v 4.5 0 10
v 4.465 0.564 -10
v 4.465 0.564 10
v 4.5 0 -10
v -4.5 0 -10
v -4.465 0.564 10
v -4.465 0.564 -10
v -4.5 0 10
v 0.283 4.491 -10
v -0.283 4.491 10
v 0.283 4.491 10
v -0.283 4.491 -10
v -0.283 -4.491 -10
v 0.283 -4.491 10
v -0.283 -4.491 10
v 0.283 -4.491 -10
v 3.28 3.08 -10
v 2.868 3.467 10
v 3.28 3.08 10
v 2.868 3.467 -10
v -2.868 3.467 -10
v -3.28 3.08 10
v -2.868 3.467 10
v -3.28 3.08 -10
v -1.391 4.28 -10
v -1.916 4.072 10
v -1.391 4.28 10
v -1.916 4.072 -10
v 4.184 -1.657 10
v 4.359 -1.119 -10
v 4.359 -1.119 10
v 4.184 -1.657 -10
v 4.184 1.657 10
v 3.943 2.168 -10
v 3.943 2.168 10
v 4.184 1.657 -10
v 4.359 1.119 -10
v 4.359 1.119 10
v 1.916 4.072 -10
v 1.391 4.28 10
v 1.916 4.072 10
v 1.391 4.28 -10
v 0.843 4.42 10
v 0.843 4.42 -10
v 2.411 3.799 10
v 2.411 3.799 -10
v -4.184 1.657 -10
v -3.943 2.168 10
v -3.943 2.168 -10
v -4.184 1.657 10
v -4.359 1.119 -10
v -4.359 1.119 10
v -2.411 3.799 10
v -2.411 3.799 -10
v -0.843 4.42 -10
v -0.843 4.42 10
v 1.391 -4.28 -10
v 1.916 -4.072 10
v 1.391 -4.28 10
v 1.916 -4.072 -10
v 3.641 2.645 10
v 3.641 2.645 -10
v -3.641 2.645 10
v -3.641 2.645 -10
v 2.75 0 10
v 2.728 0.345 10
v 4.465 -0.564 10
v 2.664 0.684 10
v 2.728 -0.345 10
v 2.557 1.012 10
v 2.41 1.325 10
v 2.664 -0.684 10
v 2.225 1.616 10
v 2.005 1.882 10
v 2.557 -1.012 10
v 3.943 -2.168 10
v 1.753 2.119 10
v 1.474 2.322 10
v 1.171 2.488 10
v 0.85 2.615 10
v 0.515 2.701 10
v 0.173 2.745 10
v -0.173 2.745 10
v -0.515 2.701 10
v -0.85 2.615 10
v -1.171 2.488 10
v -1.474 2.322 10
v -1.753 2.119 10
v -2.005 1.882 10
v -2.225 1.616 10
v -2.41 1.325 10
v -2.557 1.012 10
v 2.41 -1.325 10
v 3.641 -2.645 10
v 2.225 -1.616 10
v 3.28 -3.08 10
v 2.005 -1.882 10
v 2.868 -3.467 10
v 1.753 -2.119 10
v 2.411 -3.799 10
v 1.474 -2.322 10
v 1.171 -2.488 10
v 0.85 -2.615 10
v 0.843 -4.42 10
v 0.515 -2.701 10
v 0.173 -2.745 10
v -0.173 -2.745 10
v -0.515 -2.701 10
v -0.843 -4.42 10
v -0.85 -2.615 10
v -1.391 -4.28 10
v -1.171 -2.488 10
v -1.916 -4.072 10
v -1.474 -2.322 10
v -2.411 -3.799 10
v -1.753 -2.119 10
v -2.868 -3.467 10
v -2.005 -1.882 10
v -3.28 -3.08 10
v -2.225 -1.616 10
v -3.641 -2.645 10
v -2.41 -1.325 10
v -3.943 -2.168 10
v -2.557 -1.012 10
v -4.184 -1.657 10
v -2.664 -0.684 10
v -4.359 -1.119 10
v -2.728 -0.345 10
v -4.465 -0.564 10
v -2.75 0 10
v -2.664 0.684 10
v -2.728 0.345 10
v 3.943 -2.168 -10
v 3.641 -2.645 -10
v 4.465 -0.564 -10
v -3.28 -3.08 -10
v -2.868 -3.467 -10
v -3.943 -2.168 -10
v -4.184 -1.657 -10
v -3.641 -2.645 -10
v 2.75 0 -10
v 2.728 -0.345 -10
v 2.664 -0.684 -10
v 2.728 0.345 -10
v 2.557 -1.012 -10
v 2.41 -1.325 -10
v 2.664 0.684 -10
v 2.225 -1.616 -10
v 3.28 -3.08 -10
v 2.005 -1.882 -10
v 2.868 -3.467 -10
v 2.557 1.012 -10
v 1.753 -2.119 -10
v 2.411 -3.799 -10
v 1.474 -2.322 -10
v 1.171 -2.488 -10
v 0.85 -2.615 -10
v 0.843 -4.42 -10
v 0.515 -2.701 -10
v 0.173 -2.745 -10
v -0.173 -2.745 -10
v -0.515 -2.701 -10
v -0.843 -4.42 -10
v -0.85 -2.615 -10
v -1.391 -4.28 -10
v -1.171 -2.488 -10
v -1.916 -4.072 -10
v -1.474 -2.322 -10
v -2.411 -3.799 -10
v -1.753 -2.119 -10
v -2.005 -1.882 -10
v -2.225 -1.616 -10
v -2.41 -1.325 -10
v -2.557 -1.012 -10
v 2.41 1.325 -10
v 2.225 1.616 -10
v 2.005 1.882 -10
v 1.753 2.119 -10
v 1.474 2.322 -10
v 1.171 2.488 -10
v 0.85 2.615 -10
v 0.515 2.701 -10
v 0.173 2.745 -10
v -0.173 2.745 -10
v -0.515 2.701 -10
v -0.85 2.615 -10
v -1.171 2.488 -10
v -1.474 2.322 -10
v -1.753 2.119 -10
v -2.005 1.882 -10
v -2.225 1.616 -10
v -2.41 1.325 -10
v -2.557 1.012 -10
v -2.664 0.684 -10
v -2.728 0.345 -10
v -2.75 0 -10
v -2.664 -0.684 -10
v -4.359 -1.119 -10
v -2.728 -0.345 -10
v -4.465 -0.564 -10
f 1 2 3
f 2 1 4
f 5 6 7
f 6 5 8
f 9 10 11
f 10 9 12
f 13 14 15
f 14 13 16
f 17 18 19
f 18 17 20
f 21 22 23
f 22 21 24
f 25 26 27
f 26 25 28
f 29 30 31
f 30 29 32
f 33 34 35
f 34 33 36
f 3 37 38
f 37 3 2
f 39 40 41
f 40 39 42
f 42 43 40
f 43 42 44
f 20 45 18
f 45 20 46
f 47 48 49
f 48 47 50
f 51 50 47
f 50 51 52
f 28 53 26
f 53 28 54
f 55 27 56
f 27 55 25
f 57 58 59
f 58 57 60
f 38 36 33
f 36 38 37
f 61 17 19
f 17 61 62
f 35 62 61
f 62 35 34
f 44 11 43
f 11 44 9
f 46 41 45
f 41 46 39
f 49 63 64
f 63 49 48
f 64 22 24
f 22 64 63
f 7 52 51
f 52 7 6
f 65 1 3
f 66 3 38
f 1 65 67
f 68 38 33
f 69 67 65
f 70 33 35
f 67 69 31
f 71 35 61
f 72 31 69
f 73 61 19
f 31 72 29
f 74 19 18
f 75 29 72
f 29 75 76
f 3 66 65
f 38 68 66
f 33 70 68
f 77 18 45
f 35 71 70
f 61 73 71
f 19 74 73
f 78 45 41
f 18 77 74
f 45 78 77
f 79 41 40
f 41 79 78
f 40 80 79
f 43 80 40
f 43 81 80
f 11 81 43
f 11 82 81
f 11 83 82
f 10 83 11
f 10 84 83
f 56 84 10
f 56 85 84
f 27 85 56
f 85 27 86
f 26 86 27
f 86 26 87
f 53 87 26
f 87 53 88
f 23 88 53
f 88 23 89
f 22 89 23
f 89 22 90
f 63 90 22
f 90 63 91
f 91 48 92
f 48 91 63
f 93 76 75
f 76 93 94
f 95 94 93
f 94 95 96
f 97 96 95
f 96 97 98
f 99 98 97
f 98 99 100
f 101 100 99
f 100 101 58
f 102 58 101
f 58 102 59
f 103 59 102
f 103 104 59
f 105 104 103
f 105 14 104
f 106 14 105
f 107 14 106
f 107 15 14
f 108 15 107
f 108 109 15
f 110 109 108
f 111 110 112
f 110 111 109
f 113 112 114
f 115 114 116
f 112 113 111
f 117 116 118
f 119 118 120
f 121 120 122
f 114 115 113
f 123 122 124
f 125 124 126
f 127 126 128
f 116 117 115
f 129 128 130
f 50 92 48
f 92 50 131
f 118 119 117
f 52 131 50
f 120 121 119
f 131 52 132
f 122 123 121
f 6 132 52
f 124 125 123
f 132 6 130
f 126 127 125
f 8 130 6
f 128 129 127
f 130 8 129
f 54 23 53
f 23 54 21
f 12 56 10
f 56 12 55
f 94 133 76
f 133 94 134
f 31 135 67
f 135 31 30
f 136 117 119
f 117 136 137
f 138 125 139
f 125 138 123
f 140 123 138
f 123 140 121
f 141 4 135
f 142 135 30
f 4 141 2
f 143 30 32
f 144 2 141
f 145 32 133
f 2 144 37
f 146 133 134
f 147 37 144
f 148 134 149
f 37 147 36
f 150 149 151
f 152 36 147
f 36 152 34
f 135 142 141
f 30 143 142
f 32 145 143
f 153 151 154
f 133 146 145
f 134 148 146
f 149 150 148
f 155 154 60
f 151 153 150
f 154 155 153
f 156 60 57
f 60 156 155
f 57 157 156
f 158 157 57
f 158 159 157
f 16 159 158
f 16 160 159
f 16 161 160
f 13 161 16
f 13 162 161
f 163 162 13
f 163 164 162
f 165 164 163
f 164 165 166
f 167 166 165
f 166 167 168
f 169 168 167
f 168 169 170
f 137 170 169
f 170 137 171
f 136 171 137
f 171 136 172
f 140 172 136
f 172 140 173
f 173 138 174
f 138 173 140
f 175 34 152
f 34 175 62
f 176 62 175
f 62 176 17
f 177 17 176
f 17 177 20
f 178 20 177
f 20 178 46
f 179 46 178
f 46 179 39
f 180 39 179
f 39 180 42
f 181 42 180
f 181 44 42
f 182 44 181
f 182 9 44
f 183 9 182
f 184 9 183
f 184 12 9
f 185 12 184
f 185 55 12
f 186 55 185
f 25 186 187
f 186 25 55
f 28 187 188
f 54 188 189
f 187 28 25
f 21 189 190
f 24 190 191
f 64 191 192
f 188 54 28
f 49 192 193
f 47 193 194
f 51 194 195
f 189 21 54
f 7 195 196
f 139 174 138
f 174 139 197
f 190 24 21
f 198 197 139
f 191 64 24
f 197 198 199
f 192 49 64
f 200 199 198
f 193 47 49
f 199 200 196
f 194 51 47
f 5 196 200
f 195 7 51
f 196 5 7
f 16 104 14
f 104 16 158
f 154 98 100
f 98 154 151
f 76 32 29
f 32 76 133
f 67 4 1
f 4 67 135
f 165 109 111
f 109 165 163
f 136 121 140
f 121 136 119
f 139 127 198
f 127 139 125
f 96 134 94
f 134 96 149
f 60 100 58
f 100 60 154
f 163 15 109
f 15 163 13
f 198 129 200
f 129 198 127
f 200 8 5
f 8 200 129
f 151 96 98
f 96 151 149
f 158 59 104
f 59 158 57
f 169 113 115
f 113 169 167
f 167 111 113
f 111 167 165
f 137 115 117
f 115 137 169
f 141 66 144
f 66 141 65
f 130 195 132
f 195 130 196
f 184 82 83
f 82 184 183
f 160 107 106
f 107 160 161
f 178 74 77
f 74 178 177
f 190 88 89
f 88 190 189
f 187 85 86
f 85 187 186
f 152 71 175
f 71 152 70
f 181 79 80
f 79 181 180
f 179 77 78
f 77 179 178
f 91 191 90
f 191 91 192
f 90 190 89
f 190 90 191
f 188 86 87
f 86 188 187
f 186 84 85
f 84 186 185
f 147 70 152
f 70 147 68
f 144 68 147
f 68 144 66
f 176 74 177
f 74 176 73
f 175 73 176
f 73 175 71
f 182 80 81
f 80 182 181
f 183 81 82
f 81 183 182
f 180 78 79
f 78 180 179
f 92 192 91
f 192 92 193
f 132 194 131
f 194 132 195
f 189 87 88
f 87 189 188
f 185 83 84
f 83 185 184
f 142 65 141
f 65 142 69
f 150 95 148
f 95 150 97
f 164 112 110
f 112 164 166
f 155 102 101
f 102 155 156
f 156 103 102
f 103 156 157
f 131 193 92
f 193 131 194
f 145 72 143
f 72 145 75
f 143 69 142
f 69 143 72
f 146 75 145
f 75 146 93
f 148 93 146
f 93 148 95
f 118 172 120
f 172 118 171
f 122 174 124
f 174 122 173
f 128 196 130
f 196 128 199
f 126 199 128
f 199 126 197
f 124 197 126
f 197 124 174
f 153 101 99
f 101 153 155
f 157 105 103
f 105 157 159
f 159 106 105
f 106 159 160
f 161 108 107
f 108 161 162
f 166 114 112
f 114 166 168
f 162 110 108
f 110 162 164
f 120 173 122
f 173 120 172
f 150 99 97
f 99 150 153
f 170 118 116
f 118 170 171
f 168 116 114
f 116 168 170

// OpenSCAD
$fn = 50;


difference() {
	union() {
		translate(v = [0, 0, -10.0000000000]) {
			cylinder(h = 20, r = 4.5000000000);
		}
	}
	union() {
		translate(v = [0, 0, -100.0000000000]) {
			cylinder(h = 200, r = 2.7500000000);
		}
	}
}
